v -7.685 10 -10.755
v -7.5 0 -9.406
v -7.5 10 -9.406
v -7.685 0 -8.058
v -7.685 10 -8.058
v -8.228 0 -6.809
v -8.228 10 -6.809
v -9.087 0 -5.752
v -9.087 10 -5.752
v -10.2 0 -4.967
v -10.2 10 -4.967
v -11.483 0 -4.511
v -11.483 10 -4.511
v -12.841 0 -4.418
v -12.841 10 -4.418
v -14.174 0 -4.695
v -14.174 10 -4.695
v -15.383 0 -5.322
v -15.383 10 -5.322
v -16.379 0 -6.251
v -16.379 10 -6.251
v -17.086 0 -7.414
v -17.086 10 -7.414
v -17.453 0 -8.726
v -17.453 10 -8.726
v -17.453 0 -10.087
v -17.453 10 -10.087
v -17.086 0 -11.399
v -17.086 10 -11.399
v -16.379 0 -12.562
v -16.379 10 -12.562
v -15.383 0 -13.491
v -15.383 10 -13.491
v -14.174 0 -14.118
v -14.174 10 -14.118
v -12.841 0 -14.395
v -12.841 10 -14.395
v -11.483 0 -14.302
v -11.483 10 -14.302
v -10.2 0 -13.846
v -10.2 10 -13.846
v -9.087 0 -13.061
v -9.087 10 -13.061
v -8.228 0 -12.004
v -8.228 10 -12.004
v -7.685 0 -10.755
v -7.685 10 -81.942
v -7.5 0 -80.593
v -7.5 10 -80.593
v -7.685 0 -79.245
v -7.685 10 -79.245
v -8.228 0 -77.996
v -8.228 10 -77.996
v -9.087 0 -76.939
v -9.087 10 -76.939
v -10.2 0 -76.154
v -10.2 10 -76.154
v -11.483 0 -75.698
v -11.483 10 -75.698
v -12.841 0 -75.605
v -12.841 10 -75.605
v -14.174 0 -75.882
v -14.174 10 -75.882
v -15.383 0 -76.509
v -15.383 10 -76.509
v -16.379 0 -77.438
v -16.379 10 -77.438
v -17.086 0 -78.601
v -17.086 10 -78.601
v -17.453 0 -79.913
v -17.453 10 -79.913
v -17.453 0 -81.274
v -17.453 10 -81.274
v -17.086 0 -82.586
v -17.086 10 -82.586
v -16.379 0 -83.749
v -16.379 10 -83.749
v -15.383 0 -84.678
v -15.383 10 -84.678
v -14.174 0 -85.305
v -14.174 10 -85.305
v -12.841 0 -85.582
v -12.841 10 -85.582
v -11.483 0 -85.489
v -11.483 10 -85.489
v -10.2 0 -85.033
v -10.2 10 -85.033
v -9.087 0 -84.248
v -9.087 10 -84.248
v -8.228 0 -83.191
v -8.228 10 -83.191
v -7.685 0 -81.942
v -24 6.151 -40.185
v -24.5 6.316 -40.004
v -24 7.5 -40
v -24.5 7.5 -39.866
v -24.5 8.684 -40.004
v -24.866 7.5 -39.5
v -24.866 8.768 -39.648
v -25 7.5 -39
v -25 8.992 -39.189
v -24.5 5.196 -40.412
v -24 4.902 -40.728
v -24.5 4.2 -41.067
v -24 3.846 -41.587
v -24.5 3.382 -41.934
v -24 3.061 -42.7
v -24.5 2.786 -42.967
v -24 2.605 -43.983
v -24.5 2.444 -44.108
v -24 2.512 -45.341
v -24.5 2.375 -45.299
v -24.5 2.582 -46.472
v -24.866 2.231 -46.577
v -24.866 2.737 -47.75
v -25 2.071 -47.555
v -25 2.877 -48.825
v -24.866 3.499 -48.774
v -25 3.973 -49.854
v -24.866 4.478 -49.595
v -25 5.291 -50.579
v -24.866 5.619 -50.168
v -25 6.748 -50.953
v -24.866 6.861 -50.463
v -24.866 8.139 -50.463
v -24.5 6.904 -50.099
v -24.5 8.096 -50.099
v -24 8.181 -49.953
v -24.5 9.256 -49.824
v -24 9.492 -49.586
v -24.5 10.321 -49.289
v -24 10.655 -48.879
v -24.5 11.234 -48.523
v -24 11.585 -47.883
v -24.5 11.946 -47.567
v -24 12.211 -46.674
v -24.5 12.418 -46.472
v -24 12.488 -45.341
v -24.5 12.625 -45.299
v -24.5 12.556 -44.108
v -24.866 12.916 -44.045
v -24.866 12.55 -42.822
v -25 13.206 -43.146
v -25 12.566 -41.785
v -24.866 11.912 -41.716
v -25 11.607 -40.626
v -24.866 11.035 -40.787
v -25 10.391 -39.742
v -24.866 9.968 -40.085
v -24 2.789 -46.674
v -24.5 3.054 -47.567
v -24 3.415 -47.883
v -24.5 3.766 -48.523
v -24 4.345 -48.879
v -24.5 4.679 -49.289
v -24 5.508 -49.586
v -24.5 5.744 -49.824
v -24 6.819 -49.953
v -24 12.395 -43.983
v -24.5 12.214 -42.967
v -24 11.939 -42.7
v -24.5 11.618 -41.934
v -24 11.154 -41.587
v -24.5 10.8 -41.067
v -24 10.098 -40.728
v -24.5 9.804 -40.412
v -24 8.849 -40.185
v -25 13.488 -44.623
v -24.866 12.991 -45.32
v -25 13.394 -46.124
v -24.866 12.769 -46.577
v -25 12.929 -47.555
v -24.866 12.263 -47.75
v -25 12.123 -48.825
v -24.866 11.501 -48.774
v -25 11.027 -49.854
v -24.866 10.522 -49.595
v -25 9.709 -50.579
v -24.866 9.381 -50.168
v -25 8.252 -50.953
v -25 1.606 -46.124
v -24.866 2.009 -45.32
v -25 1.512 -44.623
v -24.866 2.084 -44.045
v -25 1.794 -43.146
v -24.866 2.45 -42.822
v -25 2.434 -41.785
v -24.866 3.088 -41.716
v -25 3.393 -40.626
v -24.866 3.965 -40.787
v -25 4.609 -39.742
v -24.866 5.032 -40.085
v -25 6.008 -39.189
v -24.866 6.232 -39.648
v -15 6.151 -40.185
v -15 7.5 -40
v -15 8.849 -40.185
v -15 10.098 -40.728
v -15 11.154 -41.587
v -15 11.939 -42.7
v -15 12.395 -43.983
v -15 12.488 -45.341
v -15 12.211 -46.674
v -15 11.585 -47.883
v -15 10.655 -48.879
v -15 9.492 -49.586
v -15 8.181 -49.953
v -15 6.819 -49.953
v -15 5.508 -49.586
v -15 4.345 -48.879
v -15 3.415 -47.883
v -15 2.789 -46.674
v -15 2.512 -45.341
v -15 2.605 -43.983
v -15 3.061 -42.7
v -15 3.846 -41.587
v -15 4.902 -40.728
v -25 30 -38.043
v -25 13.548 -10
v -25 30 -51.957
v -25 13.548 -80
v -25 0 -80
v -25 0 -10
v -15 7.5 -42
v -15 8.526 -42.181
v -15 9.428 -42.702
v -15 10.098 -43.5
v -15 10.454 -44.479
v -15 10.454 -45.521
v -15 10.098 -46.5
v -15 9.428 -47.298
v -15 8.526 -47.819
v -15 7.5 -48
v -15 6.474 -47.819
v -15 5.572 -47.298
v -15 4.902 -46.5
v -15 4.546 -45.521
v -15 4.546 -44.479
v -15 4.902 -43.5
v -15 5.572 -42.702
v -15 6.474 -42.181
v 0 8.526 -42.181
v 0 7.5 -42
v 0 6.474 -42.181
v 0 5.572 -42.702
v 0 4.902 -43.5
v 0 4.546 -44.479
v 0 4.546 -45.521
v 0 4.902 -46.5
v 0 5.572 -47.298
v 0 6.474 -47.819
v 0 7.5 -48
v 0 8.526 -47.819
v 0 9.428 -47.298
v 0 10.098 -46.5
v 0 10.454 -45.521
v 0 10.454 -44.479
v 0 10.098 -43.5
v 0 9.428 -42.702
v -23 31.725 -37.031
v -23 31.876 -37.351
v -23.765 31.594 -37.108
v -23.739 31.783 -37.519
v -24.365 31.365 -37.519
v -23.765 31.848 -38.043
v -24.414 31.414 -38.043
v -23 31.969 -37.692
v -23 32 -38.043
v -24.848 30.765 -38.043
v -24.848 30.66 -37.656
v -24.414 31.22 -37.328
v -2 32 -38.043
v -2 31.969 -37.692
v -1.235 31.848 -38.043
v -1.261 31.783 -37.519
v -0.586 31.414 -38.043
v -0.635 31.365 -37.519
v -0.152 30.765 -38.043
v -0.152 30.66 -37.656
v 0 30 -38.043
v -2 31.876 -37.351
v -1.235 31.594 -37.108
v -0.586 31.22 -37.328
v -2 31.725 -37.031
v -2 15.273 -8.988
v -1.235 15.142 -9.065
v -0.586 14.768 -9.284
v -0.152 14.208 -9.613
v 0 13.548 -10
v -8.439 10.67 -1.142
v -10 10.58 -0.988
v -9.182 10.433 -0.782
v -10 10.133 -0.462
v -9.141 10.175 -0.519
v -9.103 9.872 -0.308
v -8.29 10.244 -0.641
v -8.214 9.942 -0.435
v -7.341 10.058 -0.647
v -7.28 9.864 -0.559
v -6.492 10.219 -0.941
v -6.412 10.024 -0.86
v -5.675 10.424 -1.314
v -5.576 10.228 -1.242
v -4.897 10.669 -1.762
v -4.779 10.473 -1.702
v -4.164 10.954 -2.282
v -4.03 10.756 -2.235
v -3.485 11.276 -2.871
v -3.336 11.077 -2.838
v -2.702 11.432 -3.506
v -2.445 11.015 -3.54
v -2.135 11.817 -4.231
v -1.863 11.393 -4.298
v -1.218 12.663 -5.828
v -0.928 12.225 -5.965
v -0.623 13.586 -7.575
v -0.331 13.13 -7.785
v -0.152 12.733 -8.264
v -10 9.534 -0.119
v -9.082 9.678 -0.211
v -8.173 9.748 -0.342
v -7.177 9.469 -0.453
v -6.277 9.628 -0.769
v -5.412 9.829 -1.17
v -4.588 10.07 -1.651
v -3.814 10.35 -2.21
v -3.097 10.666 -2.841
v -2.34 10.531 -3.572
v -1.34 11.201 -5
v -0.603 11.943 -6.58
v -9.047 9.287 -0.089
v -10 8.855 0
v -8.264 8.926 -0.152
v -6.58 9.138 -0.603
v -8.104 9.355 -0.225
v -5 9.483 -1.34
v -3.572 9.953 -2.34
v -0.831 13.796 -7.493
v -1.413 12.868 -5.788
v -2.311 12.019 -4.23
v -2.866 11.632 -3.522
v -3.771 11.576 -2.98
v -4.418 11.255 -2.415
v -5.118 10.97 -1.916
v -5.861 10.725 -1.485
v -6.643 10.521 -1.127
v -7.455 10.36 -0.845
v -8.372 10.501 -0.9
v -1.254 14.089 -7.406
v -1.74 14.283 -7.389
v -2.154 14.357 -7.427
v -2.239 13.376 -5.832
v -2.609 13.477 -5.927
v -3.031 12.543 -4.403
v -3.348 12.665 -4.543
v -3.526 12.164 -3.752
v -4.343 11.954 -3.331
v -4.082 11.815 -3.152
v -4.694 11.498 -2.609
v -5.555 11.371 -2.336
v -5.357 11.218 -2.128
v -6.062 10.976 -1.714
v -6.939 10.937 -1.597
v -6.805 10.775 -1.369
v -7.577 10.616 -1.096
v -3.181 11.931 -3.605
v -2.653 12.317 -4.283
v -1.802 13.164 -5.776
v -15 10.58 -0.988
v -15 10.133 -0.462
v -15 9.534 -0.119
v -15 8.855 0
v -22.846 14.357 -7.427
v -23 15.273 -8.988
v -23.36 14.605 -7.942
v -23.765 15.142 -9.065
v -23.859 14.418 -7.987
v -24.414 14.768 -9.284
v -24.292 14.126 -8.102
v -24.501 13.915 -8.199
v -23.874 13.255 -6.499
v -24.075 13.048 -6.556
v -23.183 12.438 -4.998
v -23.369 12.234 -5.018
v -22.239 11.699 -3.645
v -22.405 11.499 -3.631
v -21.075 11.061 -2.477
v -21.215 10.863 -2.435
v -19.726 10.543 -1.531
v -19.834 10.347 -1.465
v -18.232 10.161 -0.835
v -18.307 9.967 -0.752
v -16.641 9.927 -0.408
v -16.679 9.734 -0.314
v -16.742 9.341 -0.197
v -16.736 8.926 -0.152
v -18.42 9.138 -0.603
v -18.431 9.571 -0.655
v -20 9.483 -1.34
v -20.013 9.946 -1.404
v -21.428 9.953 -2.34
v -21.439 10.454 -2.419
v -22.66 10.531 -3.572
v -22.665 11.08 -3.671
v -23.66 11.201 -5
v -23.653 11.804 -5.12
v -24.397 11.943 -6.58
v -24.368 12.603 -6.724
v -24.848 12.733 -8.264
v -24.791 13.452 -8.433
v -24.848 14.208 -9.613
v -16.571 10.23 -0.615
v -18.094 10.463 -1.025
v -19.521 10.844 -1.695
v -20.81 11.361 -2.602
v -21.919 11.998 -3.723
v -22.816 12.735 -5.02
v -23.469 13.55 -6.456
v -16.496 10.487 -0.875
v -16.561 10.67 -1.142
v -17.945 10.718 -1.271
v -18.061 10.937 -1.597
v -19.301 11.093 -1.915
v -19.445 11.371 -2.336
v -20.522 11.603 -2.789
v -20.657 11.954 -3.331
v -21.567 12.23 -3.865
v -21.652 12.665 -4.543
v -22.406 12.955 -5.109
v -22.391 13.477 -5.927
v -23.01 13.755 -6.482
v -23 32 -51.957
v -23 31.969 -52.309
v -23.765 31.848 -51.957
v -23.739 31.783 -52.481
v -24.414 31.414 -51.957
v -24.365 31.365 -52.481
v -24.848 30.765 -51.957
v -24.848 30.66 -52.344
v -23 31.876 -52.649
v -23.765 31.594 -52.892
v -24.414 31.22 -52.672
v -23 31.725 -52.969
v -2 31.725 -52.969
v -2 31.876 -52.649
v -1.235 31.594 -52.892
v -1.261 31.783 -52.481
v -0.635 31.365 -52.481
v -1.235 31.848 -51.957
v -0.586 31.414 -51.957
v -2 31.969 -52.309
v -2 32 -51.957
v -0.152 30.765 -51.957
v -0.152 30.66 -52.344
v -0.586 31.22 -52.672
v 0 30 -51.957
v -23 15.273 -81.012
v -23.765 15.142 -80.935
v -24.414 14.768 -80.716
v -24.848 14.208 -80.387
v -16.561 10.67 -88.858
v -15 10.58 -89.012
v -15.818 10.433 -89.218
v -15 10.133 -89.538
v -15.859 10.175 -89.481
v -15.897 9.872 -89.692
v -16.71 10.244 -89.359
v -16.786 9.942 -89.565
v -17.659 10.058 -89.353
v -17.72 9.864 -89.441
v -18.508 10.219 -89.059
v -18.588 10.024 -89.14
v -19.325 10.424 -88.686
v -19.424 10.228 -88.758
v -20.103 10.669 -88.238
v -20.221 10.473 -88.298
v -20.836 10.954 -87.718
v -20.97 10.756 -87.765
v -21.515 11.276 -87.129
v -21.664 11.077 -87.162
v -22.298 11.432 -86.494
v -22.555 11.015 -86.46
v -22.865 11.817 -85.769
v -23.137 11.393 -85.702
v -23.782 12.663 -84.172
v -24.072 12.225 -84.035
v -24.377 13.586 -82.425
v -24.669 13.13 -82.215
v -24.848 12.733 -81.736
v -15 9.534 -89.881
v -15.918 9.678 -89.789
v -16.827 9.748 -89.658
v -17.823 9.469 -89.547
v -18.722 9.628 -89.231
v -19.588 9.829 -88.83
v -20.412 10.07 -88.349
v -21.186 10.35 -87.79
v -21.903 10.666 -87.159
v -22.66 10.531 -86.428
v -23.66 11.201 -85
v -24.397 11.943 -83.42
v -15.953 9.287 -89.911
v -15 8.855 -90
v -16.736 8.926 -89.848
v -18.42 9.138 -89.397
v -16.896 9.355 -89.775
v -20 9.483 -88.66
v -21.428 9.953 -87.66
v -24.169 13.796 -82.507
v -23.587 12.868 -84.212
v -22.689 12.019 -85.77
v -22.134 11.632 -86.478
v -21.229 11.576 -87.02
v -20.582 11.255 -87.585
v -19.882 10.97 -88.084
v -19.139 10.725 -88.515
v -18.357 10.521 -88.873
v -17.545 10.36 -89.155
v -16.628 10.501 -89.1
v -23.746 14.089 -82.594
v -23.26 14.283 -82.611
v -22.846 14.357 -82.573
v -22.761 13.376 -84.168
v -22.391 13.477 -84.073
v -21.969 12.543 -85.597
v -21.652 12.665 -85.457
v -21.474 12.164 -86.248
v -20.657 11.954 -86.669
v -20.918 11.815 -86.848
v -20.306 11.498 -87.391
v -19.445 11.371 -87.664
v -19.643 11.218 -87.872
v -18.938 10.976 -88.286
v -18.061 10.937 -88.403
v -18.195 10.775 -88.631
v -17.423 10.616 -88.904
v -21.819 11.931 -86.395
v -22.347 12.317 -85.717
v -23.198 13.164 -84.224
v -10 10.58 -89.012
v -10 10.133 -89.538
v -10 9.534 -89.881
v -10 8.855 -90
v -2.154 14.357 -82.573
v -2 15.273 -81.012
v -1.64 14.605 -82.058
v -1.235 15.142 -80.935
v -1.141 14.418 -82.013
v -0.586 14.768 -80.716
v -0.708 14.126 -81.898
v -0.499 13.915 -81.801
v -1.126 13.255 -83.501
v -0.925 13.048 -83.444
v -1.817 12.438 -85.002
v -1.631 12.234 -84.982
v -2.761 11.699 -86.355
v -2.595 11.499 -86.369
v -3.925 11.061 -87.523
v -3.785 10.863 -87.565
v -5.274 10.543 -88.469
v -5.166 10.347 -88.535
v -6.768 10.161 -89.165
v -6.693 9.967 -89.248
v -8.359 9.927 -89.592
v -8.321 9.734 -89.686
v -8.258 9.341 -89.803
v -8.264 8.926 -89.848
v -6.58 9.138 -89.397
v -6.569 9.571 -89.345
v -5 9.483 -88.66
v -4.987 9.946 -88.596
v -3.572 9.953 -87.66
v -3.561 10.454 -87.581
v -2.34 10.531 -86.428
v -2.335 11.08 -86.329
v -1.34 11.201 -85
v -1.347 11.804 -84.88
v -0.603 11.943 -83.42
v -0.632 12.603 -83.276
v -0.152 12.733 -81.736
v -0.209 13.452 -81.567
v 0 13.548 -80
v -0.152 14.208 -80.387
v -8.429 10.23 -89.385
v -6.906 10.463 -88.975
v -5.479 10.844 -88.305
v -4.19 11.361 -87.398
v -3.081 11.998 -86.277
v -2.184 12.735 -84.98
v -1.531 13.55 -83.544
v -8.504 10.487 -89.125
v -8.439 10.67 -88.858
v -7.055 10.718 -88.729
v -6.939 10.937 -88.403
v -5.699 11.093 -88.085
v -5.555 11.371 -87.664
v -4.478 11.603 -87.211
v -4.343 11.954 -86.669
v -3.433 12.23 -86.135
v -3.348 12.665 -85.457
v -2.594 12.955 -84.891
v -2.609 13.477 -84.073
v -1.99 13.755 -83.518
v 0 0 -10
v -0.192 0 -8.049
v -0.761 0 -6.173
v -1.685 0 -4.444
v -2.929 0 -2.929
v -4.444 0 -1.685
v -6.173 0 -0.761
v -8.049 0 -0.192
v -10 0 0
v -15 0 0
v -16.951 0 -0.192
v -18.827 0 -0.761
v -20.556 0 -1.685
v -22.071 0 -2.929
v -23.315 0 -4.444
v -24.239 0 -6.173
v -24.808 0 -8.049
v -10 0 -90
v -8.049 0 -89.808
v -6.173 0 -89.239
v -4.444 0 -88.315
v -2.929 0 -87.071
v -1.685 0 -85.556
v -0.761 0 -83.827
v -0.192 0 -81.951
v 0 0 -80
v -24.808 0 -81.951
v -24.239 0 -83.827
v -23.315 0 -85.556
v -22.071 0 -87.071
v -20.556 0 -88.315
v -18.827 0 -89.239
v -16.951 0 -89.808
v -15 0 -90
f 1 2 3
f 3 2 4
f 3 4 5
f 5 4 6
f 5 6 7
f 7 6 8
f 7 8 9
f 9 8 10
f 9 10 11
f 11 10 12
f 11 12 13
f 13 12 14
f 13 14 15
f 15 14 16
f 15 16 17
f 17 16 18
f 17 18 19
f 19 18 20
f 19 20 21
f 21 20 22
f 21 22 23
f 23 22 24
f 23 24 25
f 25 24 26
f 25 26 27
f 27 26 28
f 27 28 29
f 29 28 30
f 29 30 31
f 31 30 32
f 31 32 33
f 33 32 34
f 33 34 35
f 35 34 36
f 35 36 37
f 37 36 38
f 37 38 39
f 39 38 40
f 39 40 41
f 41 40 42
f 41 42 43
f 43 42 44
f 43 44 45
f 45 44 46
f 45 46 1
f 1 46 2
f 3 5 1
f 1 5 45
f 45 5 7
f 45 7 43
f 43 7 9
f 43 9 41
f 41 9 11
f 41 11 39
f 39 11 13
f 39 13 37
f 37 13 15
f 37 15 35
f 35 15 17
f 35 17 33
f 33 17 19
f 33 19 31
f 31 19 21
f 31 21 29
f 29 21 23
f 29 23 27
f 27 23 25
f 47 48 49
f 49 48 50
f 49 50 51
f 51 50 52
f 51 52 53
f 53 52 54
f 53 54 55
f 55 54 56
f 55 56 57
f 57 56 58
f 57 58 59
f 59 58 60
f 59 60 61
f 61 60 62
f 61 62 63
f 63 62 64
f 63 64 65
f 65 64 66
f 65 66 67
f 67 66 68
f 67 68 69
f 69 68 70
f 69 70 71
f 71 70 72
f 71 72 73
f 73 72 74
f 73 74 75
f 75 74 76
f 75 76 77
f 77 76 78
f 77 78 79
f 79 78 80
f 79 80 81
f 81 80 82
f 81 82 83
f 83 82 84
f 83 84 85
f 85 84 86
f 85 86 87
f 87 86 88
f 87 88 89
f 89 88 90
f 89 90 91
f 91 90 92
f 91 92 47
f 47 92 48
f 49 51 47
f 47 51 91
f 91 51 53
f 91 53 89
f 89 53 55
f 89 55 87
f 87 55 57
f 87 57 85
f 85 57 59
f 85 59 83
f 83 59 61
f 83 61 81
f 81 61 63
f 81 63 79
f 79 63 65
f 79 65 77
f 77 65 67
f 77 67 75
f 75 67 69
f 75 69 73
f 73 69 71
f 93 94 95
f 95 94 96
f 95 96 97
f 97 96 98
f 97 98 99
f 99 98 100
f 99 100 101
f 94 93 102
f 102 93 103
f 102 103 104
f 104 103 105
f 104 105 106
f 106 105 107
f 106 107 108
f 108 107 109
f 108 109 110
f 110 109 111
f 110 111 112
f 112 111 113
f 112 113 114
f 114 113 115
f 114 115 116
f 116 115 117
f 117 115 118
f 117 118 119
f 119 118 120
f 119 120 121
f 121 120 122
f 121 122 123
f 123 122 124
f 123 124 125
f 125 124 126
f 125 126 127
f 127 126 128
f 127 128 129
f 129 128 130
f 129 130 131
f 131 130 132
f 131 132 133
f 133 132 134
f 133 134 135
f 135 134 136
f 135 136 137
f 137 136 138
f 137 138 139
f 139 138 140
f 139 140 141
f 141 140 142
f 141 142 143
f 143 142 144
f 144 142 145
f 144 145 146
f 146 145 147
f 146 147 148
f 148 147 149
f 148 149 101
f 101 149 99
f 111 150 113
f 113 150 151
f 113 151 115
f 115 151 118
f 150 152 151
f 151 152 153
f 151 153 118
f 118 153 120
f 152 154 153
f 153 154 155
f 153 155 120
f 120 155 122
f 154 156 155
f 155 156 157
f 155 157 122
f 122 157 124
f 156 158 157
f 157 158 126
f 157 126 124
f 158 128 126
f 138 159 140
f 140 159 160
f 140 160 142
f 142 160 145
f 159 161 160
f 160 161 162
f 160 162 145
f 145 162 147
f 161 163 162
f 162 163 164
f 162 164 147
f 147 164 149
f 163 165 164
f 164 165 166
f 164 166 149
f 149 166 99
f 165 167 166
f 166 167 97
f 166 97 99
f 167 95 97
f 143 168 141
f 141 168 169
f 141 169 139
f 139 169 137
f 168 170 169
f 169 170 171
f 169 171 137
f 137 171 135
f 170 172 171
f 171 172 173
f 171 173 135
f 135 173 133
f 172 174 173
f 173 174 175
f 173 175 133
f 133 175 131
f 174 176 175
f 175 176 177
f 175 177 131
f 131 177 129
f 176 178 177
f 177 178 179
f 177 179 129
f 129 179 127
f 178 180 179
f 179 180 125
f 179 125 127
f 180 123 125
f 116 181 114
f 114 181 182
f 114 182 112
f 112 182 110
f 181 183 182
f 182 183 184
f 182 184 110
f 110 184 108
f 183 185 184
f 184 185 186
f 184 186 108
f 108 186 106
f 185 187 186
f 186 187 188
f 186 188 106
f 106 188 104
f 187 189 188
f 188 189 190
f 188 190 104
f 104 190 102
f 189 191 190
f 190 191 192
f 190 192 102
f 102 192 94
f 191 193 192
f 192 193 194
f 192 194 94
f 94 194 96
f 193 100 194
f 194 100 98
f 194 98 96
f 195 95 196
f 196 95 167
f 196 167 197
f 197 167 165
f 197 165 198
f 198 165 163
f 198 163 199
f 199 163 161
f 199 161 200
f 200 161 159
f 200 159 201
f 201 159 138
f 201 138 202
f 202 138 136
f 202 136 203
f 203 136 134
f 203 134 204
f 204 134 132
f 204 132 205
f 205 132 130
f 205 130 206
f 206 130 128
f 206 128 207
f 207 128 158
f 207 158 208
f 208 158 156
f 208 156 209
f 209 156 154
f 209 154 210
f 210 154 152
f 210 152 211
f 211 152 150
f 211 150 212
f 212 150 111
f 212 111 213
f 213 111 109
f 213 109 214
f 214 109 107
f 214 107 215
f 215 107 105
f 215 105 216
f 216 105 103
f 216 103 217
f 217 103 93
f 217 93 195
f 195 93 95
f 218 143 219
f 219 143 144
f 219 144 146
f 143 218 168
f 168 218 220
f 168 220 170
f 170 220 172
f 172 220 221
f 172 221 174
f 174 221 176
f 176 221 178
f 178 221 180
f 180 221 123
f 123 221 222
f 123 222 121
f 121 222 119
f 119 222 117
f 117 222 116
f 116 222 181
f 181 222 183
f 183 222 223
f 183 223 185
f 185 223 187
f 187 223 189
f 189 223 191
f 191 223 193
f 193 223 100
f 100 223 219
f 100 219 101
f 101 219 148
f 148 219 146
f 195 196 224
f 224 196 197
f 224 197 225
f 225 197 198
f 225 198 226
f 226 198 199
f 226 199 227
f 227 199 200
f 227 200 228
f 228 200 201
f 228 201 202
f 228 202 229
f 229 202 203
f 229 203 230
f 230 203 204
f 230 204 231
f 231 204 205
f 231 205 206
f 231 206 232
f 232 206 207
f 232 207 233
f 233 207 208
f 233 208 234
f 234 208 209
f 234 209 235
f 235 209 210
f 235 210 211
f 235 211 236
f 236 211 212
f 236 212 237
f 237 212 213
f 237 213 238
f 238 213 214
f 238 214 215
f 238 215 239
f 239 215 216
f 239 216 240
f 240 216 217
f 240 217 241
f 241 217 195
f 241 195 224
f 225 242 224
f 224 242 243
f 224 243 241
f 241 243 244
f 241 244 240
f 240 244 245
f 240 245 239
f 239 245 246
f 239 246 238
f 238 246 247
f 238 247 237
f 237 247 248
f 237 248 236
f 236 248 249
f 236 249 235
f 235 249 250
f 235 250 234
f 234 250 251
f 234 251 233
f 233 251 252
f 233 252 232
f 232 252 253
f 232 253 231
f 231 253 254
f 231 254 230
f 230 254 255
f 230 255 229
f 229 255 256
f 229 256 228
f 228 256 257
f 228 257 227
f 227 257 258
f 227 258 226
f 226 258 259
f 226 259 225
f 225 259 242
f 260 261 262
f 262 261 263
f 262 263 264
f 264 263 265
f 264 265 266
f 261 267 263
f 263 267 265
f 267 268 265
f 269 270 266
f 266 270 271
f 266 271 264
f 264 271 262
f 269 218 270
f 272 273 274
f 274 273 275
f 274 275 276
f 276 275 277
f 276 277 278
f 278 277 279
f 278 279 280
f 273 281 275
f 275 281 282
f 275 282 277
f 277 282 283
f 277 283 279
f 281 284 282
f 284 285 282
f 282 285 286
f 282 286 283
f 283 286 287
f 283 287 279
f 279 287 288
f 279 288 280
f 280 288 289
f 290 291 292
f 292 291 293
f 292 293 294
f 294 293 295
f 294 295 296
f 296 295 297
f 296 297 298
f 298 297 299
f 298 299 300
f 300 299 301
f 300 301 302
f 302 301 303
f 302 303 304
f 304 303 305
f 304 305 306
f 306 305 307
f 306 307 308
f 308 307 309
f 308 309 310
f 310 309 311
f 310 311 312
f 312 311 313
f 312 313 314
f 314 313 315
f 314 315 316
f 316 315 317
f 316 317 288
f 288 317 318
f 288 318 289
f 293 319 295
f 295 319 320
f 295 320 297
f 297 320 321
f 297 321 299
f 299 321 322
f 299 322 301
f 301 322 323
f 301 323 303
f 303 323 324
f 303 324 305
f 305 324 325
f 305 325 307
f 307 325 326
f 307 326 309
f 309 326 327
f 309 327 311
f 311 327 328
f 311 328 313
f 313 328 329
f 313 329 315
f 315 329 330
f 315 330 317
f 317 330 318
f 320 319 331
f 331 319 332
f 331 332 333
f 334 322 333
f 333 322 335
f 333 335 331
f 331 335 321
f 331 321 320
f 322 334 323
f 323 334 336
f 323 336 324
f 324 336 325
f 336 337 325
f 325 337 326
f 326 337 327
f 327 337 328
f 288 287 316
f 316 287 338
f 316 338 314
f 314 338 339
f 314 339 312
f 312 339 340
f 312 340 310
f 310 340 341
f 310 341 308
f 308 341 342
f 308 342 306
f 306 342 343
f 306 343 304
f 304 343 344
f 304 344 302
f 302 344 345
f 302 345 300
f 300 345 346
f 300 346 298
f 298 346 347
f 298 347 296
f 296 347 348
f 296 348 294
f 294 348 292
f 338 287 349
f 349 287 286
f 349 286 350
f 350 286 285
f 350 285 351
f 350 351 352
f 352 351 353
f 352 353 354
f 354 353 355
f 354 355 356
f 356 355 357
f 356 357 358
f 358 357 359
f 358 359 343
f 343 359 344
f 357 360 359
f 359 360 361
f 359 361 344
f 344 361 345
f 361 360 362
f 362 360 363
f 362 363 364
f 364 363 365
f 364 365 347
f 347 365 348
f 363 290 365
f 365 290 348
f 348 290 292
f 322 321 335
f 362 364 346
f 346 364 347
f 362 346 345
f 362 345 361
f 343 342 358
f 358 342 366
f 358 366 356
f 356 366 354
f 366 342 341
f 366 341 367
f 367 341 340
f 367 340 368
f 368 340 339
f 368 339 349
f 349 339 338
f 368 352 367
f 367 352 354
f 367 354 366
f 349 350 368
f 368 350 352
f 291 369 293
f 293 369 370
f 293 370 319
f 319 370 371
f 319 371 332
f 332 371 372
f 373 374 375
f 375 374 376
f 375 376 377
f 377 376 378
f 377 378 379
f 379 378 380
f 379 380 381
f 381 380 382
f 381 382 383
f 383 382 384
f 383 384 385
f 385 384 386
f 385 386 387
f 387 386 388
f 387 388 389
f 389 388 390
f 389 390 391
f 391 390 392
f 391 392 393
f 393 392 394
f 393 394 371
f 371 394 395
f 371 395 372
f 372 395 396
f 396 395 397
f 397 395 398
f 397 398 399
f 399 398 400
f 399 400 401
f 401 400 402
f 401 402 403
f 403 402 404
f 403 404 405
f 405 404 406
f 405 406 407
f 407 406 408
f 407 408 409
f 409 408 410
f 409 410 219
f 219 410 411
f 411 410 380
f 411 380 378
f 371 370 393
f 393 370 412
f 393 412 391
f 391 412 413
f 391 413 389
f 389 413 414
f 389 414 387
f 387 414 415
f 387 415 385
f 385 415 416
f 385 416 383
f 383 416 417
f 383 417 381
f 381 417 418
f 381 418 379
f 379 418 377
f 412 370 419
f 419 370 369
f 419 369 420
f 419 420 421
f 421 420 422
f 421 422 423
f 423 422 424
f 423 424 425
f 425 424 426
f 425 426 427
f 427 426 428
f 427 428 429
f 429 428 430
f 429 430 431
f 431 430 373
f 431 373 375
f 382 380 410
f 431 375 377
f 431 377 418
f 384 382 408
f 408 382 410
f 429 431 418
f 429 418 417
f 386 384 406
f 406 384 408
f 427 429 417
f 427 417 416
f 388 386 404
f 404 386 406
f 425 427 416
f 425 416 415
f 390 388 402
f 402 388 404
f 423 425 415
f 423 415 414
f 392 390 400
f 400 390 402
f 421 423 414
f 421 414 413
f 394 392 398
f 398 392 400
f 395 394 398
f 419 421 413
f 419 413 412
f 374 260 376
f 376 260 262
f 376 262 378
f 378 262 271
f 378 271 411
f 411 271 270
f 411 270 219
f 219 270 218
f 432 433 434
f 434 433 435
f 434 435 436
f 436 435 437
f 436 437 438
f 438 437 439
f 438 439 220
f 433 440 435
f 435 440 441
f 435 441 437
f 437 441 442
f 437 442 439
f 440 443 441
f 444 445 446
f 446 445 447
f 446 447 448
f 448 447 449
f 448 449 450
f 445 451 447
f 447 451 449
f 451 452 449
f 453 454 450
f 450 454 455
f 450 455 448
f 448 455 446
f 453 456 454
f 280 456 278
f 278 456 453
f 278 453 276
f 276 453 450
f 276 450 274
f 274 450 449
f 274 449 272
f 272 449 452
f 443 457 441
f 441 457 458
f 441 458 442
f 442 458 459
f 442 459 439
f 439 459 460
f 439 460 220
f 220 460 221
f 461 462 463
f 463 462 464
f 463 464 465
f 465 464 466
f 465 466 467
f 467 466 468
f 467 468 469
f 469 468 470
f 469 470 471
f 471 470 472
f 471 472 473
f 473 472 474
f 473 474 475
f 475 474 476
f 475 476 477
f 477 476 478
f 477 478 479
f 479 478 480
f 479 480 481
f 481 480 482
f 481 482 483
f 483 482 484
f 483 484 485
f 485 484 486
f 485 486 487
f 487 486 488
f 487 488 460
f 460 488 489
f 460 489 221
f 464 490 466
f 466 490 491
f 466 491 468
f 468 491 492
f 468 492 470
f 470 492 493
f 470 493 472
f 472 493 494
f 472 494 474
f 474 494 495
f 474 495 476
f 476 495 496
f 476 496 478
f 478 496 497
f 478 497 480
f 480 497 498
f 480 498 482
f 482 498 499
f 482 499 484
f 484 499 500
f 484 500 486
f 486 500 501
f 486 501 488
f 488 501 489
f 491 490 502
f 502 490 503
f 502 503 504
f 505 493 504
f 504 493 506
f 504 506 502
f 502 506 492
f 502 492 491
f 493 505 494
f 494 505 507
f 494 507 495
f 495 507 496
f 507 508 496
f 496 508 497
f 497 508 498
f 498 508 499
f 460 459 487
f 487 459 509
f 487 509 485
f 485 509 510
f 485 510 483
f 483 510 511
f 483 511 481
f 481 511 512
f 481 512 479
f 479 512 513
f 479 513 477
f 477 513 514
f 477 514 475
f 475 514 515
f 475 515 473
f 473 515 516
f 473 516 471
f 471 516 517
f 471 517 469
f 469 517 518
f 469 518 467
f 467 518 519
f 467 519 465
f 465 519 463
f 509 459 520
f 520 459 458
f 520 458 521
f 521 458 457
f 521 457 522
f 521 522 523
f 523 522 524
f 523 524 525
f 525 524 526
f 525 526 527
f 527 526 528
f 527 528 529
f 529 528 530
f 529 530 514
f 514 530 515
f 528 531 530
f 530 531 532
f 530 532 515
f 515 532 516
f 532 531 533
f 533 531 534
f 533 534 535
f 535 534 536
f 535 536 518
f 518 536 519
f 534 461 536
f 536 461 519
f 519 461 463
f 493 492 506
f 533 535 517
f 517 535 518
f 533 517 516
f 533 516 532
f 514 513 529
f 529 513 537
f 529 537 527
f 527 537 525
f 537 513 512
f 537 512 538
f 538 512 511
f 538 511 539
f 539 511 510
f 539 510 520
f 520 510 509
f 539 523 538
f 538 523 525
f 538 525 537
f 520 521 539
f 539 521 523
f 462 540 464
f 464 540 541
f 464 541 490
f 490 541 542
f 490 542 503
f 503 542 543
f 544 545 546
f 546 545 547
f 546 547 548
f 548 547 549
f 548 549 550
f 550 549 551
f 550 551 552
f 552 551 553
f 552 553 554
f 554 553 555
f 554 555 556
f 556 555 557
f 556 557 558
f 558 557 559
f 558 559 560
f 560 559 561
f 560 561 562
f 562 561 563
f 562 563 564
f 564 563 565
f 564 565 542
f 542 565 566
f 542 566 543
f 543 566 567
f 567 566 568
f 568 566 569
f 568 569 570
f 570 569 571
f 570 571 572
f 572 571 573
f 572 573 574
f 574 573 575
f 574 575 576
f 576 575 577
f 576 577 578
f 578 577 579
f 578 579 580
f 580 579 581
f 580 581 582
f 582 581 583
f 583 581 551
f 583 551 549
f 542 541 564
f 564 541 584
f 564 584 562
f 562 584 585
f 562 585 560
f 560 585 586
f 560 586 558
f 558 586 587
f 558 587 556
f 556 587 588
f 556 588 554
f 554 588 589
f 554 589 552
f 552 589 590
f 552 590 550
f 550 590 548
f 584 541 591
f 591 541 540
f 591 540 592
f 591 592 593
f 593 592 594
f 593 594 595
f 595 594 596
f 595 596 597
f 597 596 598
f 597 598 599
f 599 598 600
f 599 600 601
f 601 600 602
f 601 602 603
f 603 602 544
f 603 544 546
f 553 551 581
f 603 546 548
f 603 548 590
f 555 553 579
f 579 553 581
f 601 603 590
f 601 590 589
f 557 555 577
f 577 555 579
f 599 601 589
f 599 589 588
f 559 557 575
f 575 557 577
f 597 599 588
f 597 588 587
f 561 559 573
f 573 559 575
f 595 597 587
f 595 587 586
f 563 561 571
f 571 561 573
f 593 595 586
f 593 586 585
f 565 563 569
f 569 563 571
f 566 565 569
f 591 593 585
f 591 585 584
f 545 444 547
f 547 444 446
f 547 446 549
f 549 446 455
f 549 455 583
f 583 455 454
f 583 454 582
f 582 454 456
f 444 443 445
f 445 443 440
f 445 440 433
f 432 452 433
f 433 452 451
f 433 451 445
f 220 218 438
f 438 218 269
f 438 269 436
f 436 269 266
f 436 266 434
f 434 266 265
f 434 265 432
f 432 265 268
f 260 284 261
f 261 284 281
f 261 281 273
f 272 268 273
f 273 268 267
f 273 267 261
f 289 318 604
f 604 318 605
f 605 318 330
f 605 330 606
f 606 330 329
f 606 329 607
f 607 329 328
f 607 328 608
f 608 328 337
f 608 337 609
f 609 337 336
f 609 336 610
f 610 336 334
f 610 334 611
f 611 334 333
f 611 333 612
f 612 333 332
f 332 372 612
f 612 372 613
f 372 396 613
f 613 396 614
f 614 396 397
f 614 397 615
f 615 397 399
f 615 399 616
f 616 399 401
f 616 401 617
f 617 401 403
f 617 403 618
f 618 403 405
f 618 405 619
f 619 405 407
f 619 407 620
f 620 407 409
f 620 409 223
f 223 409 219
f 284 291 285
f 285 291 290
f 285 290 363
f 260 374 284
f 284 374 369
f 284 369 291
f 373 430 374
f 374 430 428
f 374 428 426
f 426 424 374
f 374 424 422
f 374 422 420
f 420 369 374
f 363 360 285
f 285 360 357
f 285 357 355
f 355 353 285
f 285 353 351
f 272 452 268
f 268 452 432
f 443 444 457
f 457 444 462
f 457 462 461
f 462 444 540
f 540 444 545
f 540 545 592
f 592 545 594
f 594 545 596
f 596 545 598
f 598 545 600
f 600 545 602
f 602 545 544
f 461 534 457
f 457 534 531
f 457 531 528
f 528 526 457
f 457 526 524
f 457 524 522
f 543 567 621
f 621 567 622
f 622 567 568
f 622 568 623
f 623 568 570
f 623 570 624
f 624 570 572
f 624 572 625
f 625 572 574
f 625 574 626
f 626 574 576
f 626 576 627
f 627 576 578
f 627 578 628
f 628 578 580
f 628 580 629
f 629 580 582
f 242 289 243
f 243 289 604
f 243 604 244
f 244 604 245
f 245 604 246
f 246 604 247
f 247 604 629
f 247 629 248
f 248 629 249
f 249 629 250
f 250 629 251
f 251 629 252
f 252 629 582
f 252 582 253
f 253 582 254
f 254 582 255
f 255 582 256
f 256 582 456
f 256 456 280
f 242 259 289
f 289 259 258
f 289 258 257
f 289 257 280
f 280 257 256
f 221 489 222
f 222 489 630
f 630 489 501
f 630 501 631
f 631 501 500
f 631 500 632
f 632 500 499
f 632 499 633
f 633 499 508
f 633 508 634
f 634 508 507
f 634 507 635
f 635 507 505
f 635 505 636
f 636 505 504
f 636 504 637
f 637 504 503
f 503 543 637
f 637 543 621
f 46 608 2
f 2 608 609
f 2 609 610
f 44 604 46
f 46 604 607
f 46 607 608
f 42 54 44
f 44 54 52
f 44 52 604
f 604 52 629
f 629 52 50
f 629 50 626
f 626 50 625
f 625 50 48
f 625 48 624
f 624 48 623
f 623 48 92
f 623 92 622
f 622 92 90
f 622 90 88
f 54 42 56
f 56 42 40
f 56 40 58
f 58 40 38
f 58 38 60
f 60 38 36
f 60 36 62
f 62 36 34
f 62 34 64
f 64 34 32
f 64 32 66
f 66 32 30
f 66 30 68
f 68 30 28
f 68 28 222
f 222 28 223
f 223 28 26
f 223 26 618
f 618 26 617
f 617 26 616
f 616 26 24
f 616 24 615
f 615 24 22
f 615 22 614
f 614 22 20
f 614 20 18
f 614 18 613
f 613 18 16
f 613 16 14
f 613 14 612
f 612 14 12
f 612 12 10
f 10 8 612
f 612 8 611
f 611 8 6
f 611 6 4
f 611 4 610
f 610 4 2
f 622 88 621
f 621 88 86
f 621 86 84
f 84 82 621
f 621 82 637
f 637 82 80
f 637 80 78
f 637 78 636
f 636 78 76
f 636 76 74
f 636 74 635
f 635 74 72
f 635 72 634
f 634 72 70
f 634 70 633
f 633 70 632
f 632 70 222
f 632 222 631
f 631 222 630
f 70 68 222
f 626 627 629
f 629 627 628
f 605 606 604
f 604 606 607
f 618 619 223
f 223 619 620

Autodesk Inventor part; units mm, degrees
ref_plane "YZ Plane" through (0, 0, 0) normal (1, 0, 0) x (0, 1, 0)
ref_plane "XZ Plane" through (0, 0, 0) normal (0, 1, 0) x (-1, 0, 0)
ref_plane "XY Plane" through (0, 0, 0) normal (0, 0, 1) x (1, 0, 0)
sketch "Sketch1" plane through (0, 0, 0) normal (0, 1, 0) x (-1, 0, 0)
  line L0 (0, 0) -> (25, 0)
  line L1 (25, 0) -> (25, -90)
  line L2 (25, -90) -> (0, -90)
  line L3 (0, -90) -> (0, 0)
  dimension "d0" = 25
  dimension "d1" = 90
extrude "Extrusion1" add sketch "Sketch1" along normal blind 10
sketch "Sketch2" plane through (0, 10, 0) normal (0, 1, 0) x (1, 0, 0)
  line L0 (-25, 90) -> (-25, 0) projected
  line L1 (0, 0) -> (0, 90) projected
  line L2 (-25, 37.5) -> (0, 37.5)
  line L3 (0, 37.5) -> (0, 52.5)
  line L4 (0, 52.5) -> (-25, 52.5)
  line L5 (-25, 52.5) -> (-25, 37.5)
  line L6 (-25, 0) -> (0, 0) projected
  point P0 (-25, 80)
  point P1 (-25, 10)
  point P2 (0, 10)
  point P3 (0, 80)
  point P4 (-15, 0)
  point P5 (-10, 0)
  point P6 (0, 37.5)
  dimension "d5" = 15
  dimension "d6" = 37.5
extrude "Extrusion2" add sketch "Sketch2" along normal blind 22 contours L4 L1 L2 L0
sketch "Sketch3" plane through (-25, 10, -37.5) normal (0, 0, 1) x (1, 0, 0)
  point P0 (25, -10)
sketch "Sketch5" plane through (0, 0, 0) normal (1, 0, 0) x (0, 0, -1)
  line L0 (37.5, 10) -> (37.5, 32) projected
  line L1 (0, 10) -> (37.5, 10) projected
  line L2 (37.5, 32) -> (0, 10)
  line L3 (37.5, 32) -> (52.5, 32) projected
  line L4 (52.5, 32) -> (90, 10)
  line L5 (90, 10) -> (52.5, 10) projected
  line L6 (52.5, 10) -> (90, 10)
  line L7 (52.5, 10) -> (52.5, 32) projected
  line L8 (52.5, 32) -> (52.5, 10)
  point P0 (0, 0)
extrude "Extrusion3" add sketch "Sketch5" against normal blind 25
fillet "Fillet2" radius 10 4 edges at (-25, 5, 0) (0, 5, 0) (-25, 5, -90) (0, 5, -90)
fillet "Fillet3" radius 2 14 edges at (-12.5, 32, -52.5) (-12.5, 32, -37.5) (0, 32, -45) (-2.9289, 11.7183, -87.0711) (-12.5, 10, -90) (-22.0711, 11.7183, -87.0711) (-25, 23.9333, -66.25) (0, 23.9333, -66.25) (-2.9289, 11.7183, -2.9289) (-12.5, 10, 0) (-22.0711, 11.7183, -2.9289) (-25, 23.9333, -23.75) (0, 23.9333, -23.75) (-25, 32, -45)
sketch "Sketch6" plane through (-25, 0, -80) normal (-1, 0, 0) x (0, 0, 1)
  line L0 (28.0434, 30) -> (41.9566, 30) projected
  line L1 (35, 30) -> (35, 15)
  line L2 (70, 0) -> (0, 0) projected
  line L3 (35, 30) -> (35, 0)
  line L4 (35, 15) -> (35, 0)
  circle A0 centre (35, 7.5) radius 3
  point P0 (80, 0)
  point P1 (35, 22.5)
  dimension "d13" = 6
  dimension "d14" = 7.5
extrude "Extrusion4" cut sketch "Sketch6" against normal blind 25
sketch "Sketch7" plane through (-25, 0, -80) normal (-1, 0, 0) x (0, 0, 1)
  line L0 (35, 25.5581) -> (35, 19.5581)
  circle A0 centre (35, 7.5) radius 3 projected
  line L1 (35, 10.5) -> (35, 4.5)
  circle A1 centre (35, 7.5) radius 5
  point P0 (80, 0)
  point P1 (35, 22.5581)
  dimension "d19" = 10
extrude "Extrusion5" cut sketch "Sketch7" against normal blind 10
fillet "Fillet4" radius 1 1 edges at (-25, 7.5, -50)
sketch "Sketch8" plane through (0, 0, 0) normal (0, -1, 0) x (1, 0, 0)
  line L0 (-10, -90) -> (-15, -90) projected
  line L1 (-12.5, -90) -> (-12.5, 0)
  line L2 (-15, 0) -> (-10, 0) projected
  circle A0 centre (-12.5, -80.5935) radius 5
  circle A1 centre (-12.5, -9.4065) radius 5
  point P0 (0, 0)
  point P1 (-12.5, -45)
  point P2 (-12.5, -4.4065)
  point P3 (-12.5, -14.4065)
  point P4 (-12.5, -75.5935)
  point P5 (-12.5, -85.5935)
  dimension "d23" = 71.187
  dimension "d24" = 10
  dimension "d25" = 10
  dimension "d26" = 35.5935
extrude "Extrusion6" cut sketch "Sketch8" against normal blind 10
properties part number "Triangle_Bracket"
